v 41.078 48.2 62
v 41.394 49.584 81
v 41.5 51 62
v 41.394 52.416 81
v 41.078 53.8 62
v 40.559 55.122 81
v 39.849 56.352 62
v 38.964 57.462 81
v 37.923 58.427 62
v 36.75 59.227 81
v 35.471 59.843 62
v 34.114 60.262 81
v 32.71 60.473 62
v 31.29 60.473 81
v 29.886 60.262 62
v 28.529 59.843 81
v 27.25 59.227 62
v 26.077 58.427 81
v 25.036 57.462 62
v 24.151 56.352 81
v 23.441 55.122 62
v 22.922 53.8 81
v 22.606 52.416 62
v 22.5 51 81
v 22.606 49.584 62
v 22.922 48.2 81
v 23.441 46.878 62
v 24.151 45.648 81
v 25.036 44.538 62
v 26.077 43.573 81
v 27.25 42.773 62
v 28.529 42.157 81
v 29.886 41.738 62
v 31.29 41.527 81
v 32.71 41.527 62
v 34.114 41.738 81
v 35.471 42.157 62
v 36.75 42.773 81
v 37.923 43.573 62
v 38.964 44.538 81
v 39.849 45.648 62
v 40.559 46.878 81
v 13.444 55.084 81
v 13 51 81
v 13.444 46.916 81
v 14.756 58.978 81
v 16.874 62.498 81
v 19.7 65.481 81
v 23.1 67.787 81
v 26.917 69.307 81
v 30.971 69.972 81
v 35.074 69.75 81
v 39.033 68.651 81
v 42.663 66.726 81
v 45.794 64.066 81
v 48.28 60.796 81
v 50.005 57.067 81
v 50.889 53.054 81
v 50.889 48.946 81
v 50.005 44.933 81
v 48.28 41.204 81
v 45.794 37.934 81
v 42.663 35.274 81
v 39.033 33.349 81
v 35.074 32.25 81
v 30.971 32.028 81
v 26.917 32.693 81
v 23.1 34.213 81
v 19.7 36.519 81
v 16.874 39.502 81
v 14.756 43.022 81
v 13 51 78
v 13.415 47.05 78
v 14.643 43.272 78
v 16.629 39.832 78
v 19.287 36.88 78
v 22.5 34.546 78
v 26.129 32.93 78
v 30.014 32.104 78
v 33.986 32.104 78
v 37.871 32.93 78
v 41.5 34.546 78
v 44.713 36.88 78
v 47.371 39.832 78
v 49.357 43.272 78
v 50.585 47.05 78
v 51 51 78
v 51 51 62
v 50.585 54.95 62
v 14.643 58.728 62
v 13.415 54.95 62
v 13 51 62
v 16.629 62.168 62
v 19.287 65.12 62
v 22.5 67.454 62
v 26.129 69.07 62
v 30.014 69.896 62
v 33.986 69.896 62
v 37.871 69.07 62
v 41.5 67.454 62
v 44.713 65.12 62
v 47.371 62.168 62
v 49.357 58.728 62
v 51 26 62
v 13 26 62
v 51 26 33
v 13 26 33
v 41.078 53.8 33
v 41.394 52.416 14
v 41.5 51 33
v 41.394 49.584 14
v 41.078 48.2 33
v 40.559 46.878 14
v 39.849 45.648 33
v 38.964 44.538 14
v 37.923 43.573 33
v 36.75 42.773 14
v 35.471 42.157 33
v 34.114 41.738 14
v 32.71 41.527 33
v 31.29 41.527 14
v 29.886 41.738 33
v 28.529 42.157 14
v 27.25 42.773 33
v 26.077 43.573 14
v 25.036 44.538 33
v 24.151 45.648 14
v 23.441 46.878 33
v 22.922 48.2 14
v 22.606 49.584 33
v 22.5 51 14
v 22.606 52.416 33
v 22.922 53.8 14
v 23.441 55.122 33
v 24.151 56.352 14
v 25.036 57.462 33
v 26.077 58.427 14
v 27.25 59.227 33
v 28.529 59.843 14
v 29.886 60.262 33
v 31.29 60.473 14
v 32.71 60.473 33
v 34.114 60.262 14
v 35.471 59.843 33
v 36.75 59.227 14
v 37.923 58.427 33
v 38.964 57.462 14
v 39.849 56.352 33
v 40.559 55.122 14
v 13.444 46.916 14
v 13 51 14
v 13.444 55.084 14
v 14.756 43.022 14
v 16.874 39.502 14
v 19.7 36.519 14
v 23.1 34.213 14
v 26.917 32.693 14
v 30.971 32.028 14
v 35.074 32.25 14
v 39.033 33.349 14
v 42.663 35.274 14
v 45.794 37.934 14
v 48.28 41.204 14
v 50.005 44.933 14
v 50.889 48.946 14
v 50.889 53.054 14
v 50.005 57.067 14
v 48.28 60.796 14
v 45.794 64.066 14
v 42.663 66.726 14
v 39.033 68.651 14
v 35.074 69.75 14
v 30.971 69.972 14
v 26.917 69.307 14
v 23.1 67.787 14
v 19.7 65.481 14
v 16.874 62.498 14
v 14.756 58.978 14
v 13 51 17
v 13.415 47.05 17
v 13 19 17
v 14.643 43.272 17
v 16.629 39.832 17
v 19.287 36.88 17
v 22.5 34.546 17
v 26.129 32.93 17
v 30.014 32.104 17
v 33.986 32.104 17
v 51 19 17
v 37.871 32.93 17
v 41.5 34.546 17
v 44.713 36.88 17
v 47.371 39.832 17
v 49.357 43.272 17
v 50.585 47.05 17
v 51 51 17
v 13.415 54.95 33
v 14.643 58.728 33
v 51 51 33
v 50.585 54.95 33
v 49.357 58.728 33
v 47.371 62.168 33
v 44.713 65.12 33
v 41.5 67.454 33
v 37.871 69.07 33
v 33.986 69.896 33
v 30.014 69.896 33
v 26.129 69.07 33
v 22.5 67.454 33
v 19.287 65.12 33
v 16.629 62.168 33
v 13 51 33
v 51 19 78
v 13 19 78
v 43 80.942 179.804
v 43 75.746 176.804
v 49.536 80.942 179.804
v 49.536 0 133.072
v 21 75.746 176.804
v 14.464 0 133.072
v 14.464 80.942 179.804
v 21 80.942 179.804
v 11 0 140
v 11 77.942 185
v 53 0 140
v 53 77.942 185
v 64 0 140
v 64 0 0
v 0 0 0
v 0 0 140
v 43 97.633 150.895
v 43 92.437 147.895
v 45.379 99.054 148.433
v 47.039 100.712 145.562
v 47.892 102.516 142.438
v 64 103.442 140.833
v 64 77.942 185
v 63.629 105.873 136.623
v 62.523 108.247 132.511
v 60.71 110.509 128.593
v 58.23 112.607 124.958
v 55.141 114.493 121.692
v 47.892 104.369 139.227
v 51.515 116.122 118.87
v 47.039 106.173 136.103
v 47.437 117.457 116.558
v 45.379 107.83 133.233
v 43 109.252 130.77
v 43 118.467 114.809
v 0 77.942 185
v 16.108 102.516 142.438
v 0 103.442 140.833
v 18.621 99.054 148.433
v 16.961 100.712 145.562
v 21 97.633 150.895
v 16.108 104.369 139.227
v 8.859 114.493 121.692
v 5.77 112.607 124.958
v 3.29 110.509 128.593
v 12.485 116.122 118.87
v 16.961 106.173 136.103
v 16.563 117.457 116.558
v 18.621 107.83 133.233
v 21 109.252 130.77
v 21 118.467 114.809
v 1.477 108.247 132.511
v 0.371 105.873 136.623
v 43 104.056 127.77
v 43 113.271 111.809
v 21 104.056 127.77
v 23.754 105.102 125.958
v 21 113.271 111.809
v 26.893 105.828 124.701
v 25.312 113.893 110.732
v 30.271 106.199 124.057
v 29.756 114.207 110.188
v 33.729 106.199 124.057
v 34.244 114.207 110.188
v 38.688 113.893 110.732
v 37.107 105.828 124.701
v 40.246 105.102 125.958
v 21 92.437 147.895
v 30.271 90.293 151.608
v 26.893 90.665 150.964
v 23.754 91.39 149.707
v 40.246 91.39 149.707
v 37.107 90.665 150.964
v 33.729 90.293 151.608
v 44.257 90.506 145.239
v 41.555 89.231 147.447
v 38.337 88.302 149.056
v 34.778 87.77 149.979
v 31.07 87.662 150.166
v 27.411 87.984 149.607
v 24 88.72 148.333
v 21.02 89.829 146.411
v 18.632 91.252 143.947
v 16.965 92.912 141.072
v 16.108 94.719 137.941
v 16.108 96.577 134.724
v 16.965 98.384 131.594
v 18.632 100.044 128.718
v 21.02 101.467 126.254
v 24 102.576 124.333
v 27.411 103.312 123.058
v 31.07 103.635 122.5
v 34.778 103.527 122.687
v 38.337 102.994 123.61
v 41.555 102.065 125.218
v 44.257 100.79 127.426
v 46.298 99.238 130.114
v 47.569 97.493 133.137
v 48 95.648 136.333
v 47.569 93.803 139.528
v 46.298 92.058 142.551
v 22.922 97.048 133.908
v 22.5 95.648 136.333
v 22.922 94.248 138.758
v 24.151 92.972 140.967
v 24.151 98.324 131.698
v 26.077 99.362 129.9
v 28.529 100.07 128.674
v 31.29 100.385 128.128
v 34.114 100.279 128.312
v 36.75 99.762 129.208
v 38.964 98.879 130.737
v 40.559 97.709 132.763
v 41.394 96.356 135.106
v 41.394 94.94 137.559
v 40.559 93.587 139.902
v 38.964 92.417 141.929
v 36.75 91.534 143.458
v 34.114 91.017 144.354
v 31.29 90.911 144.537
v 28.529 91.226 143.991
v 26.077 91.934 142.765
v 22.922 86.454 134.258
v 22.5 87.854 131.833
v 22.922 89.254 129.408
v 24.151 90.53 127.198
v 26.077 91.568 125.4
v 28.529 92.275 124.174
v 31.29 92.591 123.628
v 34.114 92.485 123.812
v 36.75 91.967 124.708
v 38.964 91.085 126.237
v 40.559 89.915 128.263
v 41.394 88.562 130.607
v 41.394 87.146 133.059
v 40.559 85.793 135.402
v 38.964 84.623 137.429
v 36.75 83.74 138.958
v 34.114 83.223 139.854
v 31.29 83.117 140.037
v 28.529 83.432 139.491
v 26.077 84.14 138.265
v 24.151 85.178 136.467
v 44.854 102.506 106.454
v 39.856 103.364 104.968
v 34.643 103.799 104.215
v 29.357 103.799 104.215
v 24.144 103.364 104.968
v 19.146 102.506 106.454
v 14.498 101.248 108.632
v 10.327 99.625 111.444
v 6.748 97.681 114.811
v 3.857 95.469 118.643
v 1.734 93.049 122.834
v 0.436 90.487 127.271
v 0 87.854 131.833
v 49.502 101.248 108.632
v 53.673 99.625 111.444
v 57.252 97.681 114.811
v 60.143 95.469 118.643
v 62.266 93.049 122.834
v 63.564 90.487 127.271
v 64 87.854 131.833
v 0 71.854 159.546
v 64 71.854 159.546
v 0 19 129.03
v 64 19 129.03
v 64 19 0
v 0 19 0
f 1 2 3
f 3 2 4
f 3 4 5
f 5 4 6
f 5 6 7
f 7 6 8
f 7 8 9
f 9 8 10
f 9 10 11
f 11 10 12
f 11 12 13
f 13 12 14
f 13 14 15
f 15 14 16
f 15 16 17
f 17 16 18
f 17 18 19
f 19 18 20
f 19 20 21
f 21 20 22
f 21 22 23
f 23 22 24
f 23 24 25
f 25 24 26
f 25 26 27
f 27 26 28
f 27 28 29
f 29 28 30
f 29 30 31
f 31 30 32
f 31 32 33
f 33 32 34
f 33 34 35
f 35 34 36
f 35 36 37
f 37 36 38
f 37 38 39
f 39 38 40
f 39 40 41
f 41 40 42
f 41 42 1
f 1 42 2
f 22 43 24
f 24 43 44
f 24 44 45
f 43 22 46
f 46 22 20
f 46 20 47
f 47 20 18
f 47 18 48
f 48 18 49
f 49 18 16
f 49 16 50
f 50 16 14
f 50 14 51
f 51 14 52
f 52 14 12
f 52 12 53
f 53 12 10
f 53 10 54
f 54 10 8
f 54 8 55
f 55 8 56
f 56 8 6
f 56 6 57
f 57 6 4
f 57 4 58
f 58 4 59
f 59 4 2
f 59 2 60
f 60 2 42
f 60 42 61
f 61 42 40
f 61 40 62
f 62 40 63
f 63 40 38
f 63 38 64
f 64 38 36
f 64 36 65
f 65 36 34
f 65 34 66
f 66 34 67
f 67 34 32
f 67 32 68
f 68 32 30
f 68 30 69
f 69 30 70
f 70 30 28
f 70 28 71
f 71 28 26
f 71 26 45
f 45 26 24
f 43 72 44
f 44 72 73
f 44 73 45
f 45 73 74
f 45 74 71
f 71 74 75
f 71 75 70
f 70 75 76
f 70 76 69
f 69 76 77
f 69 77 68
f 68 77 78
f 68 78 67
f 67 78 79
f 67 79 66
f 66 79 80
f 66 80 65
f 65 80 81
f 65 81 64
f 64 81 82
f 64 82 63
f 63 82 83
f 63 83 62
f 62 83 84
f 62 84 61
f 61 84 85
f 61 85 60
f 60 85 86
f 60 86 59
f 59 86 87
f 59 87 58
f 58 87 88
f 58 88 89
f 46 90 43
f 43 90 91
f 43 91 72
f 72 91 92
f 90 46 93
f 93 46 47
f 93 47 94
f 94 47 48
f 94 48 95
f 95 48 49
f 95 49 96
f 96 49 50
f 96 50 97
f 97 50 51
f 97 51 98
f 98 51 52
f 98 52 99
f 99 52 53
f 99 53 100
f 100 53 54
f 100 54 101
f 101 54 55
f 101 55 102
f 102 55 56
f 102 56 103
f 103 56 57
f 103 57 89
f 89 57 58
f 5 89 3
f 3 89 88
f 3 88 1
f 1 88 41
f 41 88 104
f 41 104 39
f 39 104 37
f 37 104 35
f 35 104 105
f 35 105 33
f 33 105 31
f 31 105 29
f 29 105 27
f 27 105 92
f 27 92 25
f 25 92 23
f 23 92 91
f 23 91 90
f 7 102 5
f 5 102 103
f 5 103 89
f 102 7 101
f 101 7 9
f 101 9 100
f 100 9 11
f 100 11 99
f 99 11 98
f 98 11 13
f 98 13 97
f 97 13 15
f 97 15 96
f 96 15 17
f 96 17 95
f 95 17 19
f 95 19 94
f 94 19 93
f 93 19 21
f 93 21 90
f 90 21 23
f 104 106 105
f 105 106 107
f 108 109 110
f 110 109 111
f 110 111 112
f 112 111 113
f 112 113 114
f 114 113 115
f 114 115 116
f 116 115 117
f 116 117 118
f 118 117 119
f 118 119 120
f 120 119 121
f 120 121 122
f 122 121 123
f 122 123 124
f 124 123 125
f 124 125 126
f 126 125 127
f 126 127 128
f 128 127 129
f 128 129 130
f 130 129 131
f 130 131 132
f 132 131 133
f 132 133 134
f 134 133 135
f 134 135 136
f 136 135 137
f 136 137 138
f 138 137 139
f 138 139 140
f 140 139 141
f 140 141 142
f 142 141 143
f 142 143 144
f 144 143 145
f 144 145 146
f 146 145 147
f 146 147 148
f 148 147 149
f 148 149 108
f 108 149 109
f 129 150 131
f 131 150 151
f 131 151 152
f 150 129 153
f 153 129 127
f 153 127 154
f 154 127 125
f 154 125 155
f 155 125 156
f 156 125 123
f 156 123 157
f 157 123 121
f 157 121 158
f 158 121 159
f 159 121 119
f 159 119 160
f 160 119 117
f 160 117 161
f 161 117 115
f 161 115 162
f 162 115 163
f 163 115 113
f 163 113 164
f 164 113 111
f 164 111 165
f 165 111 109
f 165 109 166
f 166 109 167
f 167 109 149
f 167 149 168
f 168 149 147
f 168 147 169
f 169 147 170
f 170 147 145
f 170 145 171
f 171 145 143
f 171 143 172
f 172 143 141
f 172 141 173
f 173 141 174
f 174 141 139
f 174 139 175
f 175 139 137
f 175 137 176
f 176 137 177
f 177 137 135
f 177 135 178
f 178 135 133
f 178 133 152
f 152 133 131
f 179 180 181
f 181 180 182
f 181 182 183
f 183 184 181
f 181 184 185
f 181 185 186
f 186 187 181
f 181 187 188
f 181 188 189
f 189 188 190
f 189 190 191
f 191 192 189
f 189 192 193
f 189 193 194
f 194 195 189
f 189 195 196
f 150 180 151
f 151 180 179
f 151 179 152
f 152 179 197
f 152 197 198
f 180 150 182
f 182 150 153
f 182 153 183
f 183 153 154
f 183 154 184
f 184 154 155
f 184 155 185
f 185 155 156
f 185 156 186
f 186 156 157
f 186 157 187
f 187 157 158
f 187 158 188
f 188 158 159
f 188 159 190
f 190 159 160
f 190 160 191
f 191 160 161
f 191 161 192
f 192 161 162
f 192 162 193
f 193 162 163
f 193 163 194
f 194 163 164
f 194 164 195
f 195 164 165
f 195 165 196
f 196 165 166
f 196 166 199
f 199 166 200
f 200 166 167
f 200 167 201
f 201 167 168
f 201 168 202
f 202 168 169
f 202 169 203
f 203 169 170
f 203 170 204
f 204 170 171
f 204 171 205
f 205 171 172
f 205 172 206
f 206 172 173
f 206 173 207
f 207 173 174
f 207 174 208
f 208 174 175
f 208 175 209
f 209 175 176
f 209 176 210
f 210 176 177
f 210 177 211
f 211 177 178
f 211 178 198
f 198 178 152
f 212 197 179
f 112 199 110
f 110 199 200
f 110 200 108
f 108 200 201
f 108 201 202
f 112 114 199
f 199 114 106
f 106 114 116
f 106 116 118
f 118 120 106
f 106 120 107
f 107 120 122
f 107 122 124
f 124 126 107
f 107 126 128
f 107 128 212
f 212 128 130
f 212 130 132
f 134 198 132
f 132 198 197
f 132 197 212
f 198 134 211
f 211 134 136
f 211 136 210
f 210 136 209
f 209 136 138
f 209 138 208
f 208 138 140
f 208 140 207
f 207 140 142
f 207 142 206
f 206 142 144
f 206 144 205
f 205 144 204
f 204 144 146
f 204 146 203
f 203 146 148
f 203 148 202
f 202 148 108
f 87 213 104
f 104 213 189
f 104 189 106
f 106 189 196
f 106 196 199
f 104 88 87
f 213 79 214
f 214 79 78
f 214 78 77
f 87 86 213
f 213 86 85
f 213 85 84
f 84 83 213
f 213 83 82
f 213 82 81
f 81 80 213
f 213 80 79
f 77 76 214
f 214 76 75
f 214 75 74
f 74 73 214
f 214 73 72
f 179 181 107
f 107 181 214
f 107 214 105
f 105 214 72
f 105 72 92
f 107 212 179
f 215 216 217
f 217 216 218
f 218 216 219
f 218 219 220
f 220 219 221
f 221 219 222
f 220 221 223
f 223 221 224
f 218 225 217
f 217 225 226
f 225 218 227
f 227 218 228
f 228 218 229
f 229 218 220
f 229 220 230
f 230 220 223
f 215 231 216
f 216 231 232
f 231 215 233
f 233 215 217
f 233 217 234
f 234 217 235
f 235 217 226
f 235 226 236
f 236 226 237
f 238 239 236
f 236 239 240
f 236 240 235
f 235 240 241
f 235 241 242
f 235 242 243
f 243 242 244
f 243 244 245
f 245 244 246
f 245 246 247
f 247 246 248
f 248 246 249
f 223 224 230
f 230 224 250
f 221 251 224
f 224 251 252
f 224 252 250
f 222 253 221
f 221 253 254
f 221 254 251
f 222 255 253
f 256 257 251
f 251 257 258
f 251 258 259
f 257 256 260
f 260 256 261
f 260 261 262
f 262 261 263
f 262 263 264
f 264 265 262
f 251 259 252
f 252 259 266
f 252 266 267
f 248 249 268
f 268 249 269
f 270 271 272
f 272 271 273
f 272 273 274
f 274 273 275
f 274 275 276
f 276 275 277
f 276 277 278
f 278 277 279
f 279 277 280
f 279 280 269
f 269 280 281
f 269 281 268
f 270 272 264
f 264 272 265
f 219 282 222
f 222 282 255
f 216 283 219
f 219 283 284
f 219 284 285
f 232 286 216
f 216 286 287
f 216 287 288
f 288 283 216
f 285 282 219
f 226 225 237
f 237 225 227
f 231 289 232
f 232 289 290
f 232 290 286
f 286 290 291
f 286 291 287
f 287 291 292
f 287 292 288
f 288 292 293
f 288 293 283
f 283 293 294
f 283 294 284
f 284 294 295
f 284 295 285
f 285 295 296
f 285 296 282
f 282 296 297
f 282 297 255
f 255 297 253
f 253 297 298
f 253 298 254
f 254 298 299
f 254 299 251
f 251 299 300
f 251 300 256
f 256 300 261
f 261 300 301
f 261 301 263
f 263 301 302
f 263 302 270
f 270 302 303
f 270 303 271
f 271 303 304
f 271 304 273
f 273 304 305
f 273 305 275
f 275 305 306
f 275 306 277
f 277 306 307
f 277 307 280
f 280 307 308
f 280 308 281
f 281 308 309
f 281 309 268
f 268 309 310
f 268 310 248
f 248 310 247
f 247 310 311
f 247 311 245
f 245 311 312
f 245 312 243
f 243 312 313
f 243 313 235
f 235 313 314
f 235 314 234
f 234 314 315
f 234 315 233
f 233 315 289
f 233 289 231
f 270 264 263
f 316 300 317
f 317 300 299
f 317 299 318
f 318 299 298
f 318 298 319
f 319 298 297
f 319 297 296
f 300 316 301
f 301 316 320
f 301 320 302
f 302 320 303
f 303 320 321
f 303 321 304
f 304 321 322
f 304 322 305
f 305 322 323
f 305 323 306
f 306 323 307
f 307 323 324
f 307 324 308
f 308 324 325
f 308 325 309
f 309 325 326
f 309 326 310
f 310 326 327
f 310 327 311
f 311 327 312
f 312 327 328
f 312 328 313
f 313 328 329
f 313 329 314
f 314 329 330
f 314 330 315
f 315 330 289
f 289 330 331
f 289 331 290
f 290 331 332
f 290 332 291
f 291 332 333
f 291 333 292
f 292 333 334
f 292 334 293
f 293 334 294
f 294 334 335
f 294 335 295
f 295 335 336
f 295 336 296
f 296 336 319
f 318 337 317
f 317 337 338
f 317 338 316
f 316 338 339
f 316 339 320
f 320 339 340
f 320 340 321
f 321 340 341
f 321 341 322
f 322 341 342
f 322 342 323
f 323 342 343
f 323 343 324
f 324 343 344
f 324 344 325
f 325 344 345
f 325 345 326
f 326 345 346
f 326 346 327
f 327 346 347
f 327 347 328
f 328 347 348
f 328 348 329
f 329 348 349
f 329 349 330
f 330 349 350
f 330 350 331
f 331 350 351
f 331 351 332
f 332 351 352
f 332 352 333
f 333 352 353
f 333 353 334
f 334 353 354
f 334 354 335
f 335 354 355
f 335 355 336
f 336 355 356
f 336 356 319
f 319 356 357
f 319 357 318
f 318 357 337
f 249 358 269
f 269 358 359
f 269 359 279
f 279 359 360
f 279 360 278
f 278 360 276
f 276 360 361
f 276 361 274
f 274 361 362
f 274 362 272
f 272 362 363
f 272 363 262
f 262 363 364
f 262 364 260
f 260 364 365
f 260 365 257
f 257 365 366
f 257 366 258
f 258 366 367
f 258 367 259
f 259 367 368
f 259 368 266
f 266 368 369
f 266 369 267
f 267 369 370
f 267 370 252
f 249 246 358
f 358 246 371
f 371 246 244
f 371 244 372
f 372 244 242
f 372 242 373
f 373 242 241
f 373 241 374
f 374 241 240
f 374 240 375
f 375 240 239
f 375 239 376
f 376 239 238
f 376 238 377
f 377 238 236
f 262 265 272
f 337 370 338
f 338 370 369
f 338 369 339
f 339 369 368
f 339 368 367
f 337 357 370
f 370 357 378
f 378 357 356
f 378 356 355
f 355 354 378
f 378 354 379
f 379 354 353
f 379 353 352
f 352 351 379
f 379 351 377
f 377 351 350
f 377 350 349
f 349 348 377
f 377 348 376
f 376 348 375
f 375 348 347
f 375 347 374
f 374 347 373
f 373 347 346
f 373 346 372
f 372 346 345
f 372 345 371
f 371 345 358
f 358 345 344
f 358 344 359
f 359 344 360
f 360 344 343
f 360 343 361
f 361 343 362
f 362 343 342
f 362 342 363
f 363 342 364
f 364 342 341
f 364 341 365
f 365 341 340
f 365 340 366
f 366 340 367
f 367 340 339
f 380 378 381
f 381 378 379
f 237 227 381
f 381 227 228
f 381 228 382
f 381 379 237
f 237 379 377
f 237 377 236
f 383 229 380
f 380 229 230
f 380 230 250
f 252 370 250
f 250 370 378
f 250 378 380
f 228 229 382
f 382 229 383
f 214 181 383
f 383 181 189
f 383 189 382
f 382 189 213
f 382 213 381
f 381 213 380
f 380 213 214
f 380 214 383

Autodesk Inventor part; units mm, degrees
ref_plane "YZ Plane" through (0, 0, 0) normal (1, 0, 0) x (0, 1, 0)
sketch "Sketch1" plane through (0, 0, 0) normal (0, 1, 0) x (-1, 0, 0)
  line L0 (0, 0) -> (-64, 0)
  line L1 (-64, 0) -> (-64, 140)
  line L2 (-64, 140) -> (0, 140)
  line L3 (0, 140) -> (0, 0)
  dimension "d0" = 140
  dimension "d1" = 64
extrude "Extrusion1" add sketch "Sketch1" along normal blind 19
sketch "Sketch3" plane through (64, 0, 140) normal (1, 0, 0) x (0, 0, -1)
  line L0 (0, 0) -> (-36, 62.3538)
  line L1 (0, 0) -> (72, 0) construction
  line L2 (-36, 62.3538) -> (-19.5455, 71.8538)
  line L3 (-19.5455, 71.8538) -> (21.9393, 0)
  line L4 (0, 0) -> (140, 0) projected
  line L5 (21.9393, 0) -> (0, 0)
  dimension "d4" = 72
  dimension "d5" = 120
  dimension "d6" = 19
  dimension "d7" = 90
extrude "Extrusion2" add sketch "Sketch3" against normal up to surface (64 mm away)
sketch "Sketch4" plane through (0, 62.3538, 176) normal (0, 0.8660254, 0.5) x (1, 0, 0)
  line L0 (64, 0) -> (0, 0) construction
  line L1 (32, 0) -> (32, 51) construction
  line L2 (32, 0) -> (83, 0) construction
  arc A0 (64, 51) -> (0, 51) centre (32, 51) ccw
  line L3 (0, 51) -> (0, 0)
  line L4 (64, 51) -> (64, 0)
  line L5 (0, 0) -> (64, 0)
  point P0 (0, 121.2436)
  dimension "d10" = 51
  dimension "d11" = 90
  dimension "d12" = 64
extrude "Extrusion3" add sketch "Sketch4" along normal blind 18
sketch "Sketch5" plane through (0, 77.9423, 185) normal (0, 0.8660254, 0.5) x (1, 0, 0)
  line L0 (0, 0) -> (64, 0) construction
  line L1 (32, 0) -> (32, 51) construction
  circle A0 centre (32, 51) radius 9.5
  point P0 (0, 121.2436)
  dimension "d15" = 51
  dimension "d16" = 19
extrude "Extrusion4" cut sketch "Sketch5" against normal up to surface (18 mm away)
sketch "Sketch6" plane through (0, 77.9423, 185) normal (0, 0.8660254, 0.5) x (1, 0, 0)
  circle A0 centre (32, 51) radius 9.5 construction
  circle A1 centre (32, 51) radius 16
  point P0 (0, 121.2436)
  dimension "d19" = 32
extrude "Extrusion5" cut sketch "Sketch6" against normal blind 9
sketch "Sketch9" plane through (0, 77.9423, 185) normal (0, 0.8660254, 0.5) x (1, 0, 0)
  line L0 (0, 0) -> (64, 0) construction
  line L1 (32, 0) -> (32, 83) construction
  arc A0 (64, 51) -> (0, 51) centre (32, 51) ccw construction
  line L2 (32, 0) -> (115, 0) construction
  arc A1 (64, 51) -> (0, 51) centre (32, 51) ccw construction
  line L3 (32, 83) -> (43, 83) construction
  line L4 (32, 83) -> (43, 83) construction
  line L5 (43, 83) -> (21, 83)
  line L6 (21, 83) -> (21, 0)
  line L7 (21, 0) -> (43, 0)
  line L8 (43, 0) -> (43, 83)
  point P0 (0, 121.2436)
  dimension "d22" = 90
  dimension "d23" = 11
  dimension "d24" = 0
  dimension "d25" = 22
  dimension "d26" = 83
extrude "Extrusion6" cut sketch "Sketch9" against normal blind 6
ref_plane "Work Plane1" through (64, 103.4423, 140.8327) normal (0, 0.8660254, 0.5) x (1, 0, 0)
sketch "Sketch10" plane through (64, 103.4423, 140.8327) normal (0, 0.8660254, 0.5) x (1, 0, 0)
  line L0 (-64, -51) -> (-43, -51) construction
  line L1 (-64, -51) -> (-64, -45) construction
  line L2 (-64, 0) -> (-64, -51) construction
  line L3 (-64, -45) -> (0, -45) construction
  line L4 (0, -51) -> (0, 0) construction
  line L5 (-32, -45) -> (-32, -51) construction
  line L6 (-21, -51) -> (-43, -51) construction
  line L7 (-32, -51) -> (-11, -51) construction
  line L8 (-32, -51) -> (-11, -51) construction
  line L9 (-11, -51) -> (-53, -51)
  line L10 (-11, -51) -> (31, -51) construction
  line L11 (-53, -51) -> (-49.5359, -45)
  line L12 (-53, -51) -> (-46.0718, -51) construction
  line L13 (-11, -51) -> (-14.4641, -45)
  line L14 (-49.5359, -45) -> (-14.4641, -45)
  point P0 (-64, 70.2436)
  dimension "d29" = 6
  dimension "d30" = 21
  dimension "d31" = 0
  dimension "d32" = 42
  dimension "d33" = 180
  dimension "d34" = 60
extrude "Extrusion7" cut sketch "Sketch10" against normal up to surface surface through (32, 0, 70) normal (0, 1, 0)
sketch "Sketch11" plane through (0, 19, 0) normal (0, 1, 0) x (1, 0, 0)
  line L0 (64, 0) -> (0, 0) construction
  line L1 (0, 0) -> (0, -140) construction
  line L2 (64, 0) -> (0, 0) construction
  line L3 (0, 0) -> (0, -17) construction
  line L4 (0, -17) -> (64, -17) construction
  line L5 (64, -17) -> (64, 0) construction
  line L6 (64, 0) -> (51, 0) construction
  line L7 (51, 0) -> (51, -17) construction
  line L8 (51, -17) -> (64, -17) construction
  line L9 (64, -17) -> (64, 0) construction
  line L10 (51, -17) -> (13, -17)
  line L11 (13, -17) -> (13, -78)
  line L12 (13, -78) -> (51, -78)
  line L13 (51, -78) -> (51, -17)
  dimension "d39" = 17
  dimension "d40" = 13
  dimension "d41" = 17
  dimension "d42" = 38
  dimension "d43" = 61
extrude "Extrusion8" add sketch "Sketch11" along normal blind 7
sketch "Sketch12" plane through (0, 26, 0) normal (0, 1, 0) x (1, 0, 0)
  line L0 (13, -78) -> (13, -17) construction
  line L1 (13, -47.5) -> (51, -47.5) construction
  line L2 (51, -17) -> (51, -78) construction
  line L3 (13, -17) -> (51, -17) construction
  line L4 (32, -17) -> (32, -78) construction
  line L5 (13, -62) -> (51, -62) construction
  line L6 (51, -62) -> (51, -33) construction
  line L7 (51, -33) -> (13, -33) construction
  line L8 (13, -33) -> (13, -62) construction
  line L9 (13, -62) -> (51, -33) construction
  line L10 (51, -62) -> (13, -33) construction
  line L11 (13, -17) -> (51, -17)
  line L12 (51, -17) -> (51, -33)
  line L13 (51, -33) -> (13, -33)
  line L14 (13, -33) -> (13, -17)
  line L15 (51, -78) -> (13, -78) projected
  line L16 (13, -62) -> (51, -62)
  line L17 (51, -62) -> (51, -78)
  line L18 (51, -78) -> (13, -78)
  line L19 (13, -78) -> (13, -62)
  point P0 (0, 0)
  point P1 (32, -47.5)
  dimension "d46" = 29
  dimension "d47" = 45
  dimension "d48" = 45
extrude "Extrusion9" add sketch "Sketch12" along normal blind 25 contours L11 L12 L13 L14
ref_plane "Work Plane2" through (32, 26, 47.5) normal (0, 0, 1) x (1, 0, 0)
sketch "Sketch14" plane through (51, 19, 17) normal (0, 0, -1) x (-1, 0, 0)
  line L0 (0, 32) -> (38, 32) projected
  arc A0 (38, 32) -> (0, 32) centre (19, 32) ccw
  point P0 (51, -19)
extrude "Extrusion10" add sketch "Sketch14" against normal up to surface (16 mm away)
sketch "Sketch15" plane through (51, 19, 17) normal (0, 0, -1) x (-1, 0, 0)
  arc A0 (38, 32) -> (0, 32) centre (19, 32) ccw construction
  line L0 (38, 0) -> (38, 32) construction
  circle A1 centre (19, 32) radius 19
  point P0 (51, -19)
extrude "Extrusion11" add sketch "Sketch15" along normal blind 3
sketch "Sketch16" plane through (32, 51, 14) normal (0, 0, -1) x (-1, 0, 0)
  circle A0 centre (0, 0) radius 9.5
  point P0 (32, -51)
  dimension "d55" = 19
extrude "Extrusion12" cut sketch "Sketch16" against normal up to surface (19 mm away)
mirror "Mirror1" about plane through (32, 26, 47.5) normal (0, 0, 1) of "Extrusion10", "Extrusion11", "Extrusion12", "Extrusion9"
properties part number "1.1"
